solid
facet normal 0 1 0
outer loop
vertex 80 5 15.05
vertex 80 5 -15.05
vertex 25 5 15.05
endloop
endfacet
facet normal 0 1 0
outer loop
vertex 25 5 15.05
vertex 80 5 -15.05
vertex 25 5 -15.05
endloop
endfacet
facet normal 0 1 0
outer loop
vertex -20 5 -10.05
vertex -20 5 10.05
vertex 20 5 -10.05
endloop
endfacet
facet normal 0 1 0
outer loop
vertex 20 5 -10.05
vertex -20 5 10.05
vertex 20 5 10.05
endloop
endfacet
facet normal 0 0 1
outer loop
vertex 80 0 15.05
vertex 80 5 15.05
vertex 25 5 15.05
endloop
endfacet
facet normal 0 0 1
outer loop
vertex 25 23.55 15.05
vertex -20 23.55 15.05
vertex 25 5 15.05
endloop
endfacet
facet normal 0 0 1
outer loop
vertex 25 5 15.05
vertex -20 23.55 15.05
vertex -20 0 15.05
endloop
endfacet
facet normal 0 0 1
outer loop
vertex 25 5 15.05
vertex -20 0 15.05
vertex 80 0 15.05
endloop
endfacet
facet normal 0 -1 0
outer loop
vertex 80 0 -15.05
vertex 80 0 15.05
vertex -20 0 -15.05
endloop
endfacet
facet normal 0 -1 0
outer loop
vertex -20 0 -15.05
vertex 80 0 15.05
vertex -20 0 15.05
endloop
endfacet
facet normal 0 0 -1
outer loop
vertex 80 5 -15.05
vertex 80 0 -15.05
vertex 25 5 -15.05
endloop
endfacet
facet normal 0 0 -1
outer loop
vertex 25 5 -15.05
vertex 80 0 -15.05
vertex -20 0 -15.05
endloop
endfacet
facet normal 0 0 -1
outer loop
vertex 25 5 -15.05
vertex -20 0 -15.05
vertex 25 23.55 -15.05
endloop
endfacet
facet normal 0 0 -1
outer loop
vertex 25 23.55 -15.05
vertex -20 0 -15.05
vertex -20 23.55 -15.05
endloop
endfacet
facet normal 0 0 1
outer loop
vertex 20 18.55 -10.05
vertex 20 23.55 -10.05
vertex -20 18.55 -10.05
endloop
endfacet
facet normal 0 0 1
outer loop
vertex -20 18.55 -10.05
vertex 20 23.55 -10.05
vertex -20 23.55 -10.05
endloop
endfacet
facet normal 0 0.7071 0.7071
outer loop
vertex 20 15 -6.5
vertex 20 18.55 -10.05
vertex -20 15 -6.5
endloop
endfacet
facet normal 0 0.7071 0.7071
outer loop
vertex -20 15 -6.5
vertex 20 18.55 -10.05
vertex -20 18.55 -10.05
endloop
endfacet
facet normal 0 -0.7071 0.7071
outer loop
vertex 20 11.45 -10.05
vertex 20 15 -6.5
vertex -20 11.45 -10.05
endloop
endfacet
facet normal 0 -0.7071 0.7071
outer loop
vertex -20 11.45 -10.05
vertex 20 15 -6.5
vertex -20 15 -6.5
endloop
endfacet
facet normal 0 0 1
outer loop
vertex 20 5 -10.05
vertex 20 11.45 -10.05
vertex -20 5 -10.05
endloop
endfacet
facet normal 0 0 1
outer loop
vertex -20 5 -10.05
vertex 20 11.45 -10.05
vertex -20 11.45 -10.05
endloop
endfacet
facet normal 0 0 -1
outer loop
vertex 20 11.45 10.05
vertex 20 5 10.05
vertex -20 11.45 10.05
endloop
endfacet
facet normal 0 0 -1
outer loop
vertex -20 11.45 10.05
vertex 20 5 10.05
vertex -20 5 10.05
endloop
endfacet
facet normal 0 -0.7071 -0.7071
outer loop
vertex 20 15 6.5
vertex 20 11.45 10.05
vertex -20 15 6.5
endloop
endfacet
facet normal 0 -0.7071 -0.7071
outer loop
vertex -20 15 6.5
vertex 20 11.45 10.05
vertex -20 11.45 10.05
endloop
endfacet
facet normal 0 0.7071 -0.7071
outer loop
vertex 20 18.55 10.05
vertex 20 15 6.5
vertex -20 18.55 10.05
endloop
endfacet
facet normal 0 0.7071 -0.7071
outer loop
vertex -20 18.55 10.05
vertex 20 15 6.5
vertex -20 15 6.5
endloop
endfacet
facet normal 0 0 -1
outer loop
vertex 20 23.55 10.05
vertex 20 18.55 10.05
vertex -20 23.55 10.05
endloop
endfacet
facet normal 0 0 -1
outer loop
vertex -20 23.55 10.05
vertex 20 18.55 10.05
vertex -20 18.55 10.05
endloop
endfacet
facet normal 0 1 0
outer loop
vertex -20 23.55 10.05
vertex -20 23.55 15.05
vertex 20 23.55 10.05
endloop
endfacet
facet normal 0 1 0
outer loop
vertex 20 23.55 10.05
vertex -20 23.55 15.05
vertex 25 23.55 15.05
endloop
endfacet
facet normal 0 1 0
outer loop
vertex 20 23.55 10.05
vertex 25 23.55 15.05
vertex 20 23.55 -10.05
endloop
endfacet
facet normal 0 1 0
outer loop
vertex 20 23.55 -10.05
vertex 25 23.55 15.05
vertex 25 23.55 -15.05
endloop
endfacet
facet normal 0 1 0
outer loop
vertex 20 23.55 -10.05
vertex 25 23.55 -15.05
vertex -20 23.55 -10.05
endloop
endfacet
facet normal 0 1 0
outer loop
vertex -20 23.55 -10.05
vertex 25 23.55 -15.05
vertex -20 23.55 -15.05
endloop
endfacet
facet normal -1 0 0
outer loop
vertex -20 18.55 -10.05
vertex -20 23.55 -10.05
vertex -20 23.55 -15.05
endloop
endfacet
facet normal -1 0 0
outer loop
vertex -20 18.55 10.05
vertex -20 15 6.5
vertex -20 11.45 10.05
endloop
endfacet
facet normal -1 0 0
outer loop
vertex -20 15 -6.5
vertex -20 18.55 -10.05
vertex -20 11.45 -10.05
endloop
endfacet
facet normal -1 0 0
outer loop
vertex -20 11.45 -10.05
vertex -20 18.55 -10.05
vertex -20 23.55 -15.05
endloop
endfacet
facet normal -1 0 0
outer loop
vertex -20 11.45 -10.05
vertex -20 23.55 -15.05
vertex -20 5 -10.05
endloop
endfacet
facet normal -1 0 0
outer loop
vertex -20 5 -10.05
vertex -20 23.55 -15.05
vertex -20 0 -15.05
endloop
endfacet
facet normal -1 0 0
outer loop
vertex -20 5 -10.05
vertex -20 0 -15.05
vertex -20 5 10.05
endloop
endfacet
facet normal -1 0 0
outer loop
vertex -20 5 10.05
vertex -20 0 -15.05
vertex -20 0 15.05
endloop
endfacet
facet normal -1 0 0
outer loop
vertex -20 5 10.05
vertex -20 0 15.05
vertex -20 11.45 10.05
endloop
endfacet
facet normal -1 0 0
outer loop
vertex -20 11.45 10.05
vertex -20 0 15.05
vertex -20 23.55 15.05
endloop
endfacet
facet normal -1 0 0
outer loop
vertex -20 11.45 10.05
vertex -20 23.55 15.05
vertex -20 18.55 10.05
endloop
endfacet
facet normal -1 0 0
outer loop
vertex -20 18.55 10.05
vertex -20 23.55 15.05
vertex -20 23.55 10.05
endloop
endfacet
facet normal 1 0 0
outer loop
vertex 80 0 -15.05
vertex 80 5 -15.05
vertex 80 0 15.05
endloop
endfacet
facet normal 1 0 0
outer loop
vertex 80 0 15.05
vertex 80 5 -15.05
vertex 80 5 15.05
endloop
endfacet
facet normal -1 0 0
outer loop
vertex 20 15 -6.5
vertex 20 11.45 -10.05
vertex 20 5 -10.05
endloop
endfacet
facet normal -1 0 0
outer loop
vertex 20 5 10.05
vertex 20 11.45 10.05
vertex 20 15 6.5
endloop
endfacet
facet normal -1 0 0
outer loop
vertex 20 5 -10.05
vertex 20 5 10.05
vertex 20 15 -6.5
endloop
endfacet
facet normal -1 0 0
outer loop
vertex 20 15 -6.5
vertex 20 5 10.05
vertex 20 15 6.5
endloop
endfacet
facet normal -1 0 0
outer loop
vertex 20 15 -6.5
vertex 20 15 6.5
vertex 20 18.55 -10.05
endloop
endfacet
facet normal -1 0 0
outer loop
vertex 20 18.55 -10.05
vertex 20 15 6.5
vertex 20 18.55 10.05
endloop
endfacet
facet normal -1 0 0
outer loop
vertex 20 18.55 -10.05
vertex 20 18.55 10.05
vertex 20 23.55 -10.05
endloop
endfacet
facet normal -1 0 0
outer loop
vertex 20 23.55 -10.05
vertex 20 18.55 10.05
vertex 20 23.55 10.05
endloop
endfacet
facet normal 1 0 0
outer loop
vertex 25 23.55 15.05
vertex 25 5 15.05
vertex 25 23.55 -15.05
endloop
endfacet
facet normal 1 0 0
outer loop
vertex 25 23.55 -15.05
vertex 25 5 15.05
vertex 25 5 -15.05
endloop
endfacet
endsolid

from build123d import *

# Parameters (mm, degrees)
BOSS_EXTRUDE1_DEPTH = 20
SKETCH3_W           = 30.1
SKETCH3_H           = 5
BOSS_EXTRUDE2_DEPTH = 60
SKETCH4_W           = 5
SKETCH4_H           = 30.1
BOSS_EXTRUDE3_DEPTH = 18.55


with BuildPart() as part:
    # Sketch2 → Boss-Extrude1 (new, symmetric)
    with BuildSketch(Plane(origin=(0, 0, 0), x_dir=(0, 0, -1), z_dir=(1, 0, 0))):
        Polygon((15.05, 0), (-15.05, 0), (-15.05, 23.55), (-10.05, 23.55), (-10.05, 18.55), (-6.5, 15), (-10.05, 11.45), (-10.05, 5), (10.05, 5), (10.05, 11.45), (6.5, 15), (10.05, 18.55), (10.05, 23.55), (15.05, 23.55), align=None)
    extrude(amount=BOSS_EXTRUDE1_DEPTH, both=True)

    # Sketch3 → Boss-Extrude2 (add)
    with BuildSketch(Plane(origin=(20, 0, 0), x_dir=(0, 0, -1), z_dir=(1, 0, 0))):
        with Locations((0, 2.5)):
            Rectangle(SKETCH3_W, SKETCH3_H)
    extrude(amount=BOSS_EXTRUDE2_DEPTH)

    # Sketch4 → Boss-Extrude3 (add)
    with BuildSketch(Plane(origin=(0, 5, 0), x_dir=(1, 0, 0), z_dir=(0, 1, 0))):
        with Locations((22.5, 0)):
            Rectangle(SKETCH4_W, SKETCH4_H)
    extrude(amount=BOSS_EXTRUDE3_DEPTH)


solid = part.part
